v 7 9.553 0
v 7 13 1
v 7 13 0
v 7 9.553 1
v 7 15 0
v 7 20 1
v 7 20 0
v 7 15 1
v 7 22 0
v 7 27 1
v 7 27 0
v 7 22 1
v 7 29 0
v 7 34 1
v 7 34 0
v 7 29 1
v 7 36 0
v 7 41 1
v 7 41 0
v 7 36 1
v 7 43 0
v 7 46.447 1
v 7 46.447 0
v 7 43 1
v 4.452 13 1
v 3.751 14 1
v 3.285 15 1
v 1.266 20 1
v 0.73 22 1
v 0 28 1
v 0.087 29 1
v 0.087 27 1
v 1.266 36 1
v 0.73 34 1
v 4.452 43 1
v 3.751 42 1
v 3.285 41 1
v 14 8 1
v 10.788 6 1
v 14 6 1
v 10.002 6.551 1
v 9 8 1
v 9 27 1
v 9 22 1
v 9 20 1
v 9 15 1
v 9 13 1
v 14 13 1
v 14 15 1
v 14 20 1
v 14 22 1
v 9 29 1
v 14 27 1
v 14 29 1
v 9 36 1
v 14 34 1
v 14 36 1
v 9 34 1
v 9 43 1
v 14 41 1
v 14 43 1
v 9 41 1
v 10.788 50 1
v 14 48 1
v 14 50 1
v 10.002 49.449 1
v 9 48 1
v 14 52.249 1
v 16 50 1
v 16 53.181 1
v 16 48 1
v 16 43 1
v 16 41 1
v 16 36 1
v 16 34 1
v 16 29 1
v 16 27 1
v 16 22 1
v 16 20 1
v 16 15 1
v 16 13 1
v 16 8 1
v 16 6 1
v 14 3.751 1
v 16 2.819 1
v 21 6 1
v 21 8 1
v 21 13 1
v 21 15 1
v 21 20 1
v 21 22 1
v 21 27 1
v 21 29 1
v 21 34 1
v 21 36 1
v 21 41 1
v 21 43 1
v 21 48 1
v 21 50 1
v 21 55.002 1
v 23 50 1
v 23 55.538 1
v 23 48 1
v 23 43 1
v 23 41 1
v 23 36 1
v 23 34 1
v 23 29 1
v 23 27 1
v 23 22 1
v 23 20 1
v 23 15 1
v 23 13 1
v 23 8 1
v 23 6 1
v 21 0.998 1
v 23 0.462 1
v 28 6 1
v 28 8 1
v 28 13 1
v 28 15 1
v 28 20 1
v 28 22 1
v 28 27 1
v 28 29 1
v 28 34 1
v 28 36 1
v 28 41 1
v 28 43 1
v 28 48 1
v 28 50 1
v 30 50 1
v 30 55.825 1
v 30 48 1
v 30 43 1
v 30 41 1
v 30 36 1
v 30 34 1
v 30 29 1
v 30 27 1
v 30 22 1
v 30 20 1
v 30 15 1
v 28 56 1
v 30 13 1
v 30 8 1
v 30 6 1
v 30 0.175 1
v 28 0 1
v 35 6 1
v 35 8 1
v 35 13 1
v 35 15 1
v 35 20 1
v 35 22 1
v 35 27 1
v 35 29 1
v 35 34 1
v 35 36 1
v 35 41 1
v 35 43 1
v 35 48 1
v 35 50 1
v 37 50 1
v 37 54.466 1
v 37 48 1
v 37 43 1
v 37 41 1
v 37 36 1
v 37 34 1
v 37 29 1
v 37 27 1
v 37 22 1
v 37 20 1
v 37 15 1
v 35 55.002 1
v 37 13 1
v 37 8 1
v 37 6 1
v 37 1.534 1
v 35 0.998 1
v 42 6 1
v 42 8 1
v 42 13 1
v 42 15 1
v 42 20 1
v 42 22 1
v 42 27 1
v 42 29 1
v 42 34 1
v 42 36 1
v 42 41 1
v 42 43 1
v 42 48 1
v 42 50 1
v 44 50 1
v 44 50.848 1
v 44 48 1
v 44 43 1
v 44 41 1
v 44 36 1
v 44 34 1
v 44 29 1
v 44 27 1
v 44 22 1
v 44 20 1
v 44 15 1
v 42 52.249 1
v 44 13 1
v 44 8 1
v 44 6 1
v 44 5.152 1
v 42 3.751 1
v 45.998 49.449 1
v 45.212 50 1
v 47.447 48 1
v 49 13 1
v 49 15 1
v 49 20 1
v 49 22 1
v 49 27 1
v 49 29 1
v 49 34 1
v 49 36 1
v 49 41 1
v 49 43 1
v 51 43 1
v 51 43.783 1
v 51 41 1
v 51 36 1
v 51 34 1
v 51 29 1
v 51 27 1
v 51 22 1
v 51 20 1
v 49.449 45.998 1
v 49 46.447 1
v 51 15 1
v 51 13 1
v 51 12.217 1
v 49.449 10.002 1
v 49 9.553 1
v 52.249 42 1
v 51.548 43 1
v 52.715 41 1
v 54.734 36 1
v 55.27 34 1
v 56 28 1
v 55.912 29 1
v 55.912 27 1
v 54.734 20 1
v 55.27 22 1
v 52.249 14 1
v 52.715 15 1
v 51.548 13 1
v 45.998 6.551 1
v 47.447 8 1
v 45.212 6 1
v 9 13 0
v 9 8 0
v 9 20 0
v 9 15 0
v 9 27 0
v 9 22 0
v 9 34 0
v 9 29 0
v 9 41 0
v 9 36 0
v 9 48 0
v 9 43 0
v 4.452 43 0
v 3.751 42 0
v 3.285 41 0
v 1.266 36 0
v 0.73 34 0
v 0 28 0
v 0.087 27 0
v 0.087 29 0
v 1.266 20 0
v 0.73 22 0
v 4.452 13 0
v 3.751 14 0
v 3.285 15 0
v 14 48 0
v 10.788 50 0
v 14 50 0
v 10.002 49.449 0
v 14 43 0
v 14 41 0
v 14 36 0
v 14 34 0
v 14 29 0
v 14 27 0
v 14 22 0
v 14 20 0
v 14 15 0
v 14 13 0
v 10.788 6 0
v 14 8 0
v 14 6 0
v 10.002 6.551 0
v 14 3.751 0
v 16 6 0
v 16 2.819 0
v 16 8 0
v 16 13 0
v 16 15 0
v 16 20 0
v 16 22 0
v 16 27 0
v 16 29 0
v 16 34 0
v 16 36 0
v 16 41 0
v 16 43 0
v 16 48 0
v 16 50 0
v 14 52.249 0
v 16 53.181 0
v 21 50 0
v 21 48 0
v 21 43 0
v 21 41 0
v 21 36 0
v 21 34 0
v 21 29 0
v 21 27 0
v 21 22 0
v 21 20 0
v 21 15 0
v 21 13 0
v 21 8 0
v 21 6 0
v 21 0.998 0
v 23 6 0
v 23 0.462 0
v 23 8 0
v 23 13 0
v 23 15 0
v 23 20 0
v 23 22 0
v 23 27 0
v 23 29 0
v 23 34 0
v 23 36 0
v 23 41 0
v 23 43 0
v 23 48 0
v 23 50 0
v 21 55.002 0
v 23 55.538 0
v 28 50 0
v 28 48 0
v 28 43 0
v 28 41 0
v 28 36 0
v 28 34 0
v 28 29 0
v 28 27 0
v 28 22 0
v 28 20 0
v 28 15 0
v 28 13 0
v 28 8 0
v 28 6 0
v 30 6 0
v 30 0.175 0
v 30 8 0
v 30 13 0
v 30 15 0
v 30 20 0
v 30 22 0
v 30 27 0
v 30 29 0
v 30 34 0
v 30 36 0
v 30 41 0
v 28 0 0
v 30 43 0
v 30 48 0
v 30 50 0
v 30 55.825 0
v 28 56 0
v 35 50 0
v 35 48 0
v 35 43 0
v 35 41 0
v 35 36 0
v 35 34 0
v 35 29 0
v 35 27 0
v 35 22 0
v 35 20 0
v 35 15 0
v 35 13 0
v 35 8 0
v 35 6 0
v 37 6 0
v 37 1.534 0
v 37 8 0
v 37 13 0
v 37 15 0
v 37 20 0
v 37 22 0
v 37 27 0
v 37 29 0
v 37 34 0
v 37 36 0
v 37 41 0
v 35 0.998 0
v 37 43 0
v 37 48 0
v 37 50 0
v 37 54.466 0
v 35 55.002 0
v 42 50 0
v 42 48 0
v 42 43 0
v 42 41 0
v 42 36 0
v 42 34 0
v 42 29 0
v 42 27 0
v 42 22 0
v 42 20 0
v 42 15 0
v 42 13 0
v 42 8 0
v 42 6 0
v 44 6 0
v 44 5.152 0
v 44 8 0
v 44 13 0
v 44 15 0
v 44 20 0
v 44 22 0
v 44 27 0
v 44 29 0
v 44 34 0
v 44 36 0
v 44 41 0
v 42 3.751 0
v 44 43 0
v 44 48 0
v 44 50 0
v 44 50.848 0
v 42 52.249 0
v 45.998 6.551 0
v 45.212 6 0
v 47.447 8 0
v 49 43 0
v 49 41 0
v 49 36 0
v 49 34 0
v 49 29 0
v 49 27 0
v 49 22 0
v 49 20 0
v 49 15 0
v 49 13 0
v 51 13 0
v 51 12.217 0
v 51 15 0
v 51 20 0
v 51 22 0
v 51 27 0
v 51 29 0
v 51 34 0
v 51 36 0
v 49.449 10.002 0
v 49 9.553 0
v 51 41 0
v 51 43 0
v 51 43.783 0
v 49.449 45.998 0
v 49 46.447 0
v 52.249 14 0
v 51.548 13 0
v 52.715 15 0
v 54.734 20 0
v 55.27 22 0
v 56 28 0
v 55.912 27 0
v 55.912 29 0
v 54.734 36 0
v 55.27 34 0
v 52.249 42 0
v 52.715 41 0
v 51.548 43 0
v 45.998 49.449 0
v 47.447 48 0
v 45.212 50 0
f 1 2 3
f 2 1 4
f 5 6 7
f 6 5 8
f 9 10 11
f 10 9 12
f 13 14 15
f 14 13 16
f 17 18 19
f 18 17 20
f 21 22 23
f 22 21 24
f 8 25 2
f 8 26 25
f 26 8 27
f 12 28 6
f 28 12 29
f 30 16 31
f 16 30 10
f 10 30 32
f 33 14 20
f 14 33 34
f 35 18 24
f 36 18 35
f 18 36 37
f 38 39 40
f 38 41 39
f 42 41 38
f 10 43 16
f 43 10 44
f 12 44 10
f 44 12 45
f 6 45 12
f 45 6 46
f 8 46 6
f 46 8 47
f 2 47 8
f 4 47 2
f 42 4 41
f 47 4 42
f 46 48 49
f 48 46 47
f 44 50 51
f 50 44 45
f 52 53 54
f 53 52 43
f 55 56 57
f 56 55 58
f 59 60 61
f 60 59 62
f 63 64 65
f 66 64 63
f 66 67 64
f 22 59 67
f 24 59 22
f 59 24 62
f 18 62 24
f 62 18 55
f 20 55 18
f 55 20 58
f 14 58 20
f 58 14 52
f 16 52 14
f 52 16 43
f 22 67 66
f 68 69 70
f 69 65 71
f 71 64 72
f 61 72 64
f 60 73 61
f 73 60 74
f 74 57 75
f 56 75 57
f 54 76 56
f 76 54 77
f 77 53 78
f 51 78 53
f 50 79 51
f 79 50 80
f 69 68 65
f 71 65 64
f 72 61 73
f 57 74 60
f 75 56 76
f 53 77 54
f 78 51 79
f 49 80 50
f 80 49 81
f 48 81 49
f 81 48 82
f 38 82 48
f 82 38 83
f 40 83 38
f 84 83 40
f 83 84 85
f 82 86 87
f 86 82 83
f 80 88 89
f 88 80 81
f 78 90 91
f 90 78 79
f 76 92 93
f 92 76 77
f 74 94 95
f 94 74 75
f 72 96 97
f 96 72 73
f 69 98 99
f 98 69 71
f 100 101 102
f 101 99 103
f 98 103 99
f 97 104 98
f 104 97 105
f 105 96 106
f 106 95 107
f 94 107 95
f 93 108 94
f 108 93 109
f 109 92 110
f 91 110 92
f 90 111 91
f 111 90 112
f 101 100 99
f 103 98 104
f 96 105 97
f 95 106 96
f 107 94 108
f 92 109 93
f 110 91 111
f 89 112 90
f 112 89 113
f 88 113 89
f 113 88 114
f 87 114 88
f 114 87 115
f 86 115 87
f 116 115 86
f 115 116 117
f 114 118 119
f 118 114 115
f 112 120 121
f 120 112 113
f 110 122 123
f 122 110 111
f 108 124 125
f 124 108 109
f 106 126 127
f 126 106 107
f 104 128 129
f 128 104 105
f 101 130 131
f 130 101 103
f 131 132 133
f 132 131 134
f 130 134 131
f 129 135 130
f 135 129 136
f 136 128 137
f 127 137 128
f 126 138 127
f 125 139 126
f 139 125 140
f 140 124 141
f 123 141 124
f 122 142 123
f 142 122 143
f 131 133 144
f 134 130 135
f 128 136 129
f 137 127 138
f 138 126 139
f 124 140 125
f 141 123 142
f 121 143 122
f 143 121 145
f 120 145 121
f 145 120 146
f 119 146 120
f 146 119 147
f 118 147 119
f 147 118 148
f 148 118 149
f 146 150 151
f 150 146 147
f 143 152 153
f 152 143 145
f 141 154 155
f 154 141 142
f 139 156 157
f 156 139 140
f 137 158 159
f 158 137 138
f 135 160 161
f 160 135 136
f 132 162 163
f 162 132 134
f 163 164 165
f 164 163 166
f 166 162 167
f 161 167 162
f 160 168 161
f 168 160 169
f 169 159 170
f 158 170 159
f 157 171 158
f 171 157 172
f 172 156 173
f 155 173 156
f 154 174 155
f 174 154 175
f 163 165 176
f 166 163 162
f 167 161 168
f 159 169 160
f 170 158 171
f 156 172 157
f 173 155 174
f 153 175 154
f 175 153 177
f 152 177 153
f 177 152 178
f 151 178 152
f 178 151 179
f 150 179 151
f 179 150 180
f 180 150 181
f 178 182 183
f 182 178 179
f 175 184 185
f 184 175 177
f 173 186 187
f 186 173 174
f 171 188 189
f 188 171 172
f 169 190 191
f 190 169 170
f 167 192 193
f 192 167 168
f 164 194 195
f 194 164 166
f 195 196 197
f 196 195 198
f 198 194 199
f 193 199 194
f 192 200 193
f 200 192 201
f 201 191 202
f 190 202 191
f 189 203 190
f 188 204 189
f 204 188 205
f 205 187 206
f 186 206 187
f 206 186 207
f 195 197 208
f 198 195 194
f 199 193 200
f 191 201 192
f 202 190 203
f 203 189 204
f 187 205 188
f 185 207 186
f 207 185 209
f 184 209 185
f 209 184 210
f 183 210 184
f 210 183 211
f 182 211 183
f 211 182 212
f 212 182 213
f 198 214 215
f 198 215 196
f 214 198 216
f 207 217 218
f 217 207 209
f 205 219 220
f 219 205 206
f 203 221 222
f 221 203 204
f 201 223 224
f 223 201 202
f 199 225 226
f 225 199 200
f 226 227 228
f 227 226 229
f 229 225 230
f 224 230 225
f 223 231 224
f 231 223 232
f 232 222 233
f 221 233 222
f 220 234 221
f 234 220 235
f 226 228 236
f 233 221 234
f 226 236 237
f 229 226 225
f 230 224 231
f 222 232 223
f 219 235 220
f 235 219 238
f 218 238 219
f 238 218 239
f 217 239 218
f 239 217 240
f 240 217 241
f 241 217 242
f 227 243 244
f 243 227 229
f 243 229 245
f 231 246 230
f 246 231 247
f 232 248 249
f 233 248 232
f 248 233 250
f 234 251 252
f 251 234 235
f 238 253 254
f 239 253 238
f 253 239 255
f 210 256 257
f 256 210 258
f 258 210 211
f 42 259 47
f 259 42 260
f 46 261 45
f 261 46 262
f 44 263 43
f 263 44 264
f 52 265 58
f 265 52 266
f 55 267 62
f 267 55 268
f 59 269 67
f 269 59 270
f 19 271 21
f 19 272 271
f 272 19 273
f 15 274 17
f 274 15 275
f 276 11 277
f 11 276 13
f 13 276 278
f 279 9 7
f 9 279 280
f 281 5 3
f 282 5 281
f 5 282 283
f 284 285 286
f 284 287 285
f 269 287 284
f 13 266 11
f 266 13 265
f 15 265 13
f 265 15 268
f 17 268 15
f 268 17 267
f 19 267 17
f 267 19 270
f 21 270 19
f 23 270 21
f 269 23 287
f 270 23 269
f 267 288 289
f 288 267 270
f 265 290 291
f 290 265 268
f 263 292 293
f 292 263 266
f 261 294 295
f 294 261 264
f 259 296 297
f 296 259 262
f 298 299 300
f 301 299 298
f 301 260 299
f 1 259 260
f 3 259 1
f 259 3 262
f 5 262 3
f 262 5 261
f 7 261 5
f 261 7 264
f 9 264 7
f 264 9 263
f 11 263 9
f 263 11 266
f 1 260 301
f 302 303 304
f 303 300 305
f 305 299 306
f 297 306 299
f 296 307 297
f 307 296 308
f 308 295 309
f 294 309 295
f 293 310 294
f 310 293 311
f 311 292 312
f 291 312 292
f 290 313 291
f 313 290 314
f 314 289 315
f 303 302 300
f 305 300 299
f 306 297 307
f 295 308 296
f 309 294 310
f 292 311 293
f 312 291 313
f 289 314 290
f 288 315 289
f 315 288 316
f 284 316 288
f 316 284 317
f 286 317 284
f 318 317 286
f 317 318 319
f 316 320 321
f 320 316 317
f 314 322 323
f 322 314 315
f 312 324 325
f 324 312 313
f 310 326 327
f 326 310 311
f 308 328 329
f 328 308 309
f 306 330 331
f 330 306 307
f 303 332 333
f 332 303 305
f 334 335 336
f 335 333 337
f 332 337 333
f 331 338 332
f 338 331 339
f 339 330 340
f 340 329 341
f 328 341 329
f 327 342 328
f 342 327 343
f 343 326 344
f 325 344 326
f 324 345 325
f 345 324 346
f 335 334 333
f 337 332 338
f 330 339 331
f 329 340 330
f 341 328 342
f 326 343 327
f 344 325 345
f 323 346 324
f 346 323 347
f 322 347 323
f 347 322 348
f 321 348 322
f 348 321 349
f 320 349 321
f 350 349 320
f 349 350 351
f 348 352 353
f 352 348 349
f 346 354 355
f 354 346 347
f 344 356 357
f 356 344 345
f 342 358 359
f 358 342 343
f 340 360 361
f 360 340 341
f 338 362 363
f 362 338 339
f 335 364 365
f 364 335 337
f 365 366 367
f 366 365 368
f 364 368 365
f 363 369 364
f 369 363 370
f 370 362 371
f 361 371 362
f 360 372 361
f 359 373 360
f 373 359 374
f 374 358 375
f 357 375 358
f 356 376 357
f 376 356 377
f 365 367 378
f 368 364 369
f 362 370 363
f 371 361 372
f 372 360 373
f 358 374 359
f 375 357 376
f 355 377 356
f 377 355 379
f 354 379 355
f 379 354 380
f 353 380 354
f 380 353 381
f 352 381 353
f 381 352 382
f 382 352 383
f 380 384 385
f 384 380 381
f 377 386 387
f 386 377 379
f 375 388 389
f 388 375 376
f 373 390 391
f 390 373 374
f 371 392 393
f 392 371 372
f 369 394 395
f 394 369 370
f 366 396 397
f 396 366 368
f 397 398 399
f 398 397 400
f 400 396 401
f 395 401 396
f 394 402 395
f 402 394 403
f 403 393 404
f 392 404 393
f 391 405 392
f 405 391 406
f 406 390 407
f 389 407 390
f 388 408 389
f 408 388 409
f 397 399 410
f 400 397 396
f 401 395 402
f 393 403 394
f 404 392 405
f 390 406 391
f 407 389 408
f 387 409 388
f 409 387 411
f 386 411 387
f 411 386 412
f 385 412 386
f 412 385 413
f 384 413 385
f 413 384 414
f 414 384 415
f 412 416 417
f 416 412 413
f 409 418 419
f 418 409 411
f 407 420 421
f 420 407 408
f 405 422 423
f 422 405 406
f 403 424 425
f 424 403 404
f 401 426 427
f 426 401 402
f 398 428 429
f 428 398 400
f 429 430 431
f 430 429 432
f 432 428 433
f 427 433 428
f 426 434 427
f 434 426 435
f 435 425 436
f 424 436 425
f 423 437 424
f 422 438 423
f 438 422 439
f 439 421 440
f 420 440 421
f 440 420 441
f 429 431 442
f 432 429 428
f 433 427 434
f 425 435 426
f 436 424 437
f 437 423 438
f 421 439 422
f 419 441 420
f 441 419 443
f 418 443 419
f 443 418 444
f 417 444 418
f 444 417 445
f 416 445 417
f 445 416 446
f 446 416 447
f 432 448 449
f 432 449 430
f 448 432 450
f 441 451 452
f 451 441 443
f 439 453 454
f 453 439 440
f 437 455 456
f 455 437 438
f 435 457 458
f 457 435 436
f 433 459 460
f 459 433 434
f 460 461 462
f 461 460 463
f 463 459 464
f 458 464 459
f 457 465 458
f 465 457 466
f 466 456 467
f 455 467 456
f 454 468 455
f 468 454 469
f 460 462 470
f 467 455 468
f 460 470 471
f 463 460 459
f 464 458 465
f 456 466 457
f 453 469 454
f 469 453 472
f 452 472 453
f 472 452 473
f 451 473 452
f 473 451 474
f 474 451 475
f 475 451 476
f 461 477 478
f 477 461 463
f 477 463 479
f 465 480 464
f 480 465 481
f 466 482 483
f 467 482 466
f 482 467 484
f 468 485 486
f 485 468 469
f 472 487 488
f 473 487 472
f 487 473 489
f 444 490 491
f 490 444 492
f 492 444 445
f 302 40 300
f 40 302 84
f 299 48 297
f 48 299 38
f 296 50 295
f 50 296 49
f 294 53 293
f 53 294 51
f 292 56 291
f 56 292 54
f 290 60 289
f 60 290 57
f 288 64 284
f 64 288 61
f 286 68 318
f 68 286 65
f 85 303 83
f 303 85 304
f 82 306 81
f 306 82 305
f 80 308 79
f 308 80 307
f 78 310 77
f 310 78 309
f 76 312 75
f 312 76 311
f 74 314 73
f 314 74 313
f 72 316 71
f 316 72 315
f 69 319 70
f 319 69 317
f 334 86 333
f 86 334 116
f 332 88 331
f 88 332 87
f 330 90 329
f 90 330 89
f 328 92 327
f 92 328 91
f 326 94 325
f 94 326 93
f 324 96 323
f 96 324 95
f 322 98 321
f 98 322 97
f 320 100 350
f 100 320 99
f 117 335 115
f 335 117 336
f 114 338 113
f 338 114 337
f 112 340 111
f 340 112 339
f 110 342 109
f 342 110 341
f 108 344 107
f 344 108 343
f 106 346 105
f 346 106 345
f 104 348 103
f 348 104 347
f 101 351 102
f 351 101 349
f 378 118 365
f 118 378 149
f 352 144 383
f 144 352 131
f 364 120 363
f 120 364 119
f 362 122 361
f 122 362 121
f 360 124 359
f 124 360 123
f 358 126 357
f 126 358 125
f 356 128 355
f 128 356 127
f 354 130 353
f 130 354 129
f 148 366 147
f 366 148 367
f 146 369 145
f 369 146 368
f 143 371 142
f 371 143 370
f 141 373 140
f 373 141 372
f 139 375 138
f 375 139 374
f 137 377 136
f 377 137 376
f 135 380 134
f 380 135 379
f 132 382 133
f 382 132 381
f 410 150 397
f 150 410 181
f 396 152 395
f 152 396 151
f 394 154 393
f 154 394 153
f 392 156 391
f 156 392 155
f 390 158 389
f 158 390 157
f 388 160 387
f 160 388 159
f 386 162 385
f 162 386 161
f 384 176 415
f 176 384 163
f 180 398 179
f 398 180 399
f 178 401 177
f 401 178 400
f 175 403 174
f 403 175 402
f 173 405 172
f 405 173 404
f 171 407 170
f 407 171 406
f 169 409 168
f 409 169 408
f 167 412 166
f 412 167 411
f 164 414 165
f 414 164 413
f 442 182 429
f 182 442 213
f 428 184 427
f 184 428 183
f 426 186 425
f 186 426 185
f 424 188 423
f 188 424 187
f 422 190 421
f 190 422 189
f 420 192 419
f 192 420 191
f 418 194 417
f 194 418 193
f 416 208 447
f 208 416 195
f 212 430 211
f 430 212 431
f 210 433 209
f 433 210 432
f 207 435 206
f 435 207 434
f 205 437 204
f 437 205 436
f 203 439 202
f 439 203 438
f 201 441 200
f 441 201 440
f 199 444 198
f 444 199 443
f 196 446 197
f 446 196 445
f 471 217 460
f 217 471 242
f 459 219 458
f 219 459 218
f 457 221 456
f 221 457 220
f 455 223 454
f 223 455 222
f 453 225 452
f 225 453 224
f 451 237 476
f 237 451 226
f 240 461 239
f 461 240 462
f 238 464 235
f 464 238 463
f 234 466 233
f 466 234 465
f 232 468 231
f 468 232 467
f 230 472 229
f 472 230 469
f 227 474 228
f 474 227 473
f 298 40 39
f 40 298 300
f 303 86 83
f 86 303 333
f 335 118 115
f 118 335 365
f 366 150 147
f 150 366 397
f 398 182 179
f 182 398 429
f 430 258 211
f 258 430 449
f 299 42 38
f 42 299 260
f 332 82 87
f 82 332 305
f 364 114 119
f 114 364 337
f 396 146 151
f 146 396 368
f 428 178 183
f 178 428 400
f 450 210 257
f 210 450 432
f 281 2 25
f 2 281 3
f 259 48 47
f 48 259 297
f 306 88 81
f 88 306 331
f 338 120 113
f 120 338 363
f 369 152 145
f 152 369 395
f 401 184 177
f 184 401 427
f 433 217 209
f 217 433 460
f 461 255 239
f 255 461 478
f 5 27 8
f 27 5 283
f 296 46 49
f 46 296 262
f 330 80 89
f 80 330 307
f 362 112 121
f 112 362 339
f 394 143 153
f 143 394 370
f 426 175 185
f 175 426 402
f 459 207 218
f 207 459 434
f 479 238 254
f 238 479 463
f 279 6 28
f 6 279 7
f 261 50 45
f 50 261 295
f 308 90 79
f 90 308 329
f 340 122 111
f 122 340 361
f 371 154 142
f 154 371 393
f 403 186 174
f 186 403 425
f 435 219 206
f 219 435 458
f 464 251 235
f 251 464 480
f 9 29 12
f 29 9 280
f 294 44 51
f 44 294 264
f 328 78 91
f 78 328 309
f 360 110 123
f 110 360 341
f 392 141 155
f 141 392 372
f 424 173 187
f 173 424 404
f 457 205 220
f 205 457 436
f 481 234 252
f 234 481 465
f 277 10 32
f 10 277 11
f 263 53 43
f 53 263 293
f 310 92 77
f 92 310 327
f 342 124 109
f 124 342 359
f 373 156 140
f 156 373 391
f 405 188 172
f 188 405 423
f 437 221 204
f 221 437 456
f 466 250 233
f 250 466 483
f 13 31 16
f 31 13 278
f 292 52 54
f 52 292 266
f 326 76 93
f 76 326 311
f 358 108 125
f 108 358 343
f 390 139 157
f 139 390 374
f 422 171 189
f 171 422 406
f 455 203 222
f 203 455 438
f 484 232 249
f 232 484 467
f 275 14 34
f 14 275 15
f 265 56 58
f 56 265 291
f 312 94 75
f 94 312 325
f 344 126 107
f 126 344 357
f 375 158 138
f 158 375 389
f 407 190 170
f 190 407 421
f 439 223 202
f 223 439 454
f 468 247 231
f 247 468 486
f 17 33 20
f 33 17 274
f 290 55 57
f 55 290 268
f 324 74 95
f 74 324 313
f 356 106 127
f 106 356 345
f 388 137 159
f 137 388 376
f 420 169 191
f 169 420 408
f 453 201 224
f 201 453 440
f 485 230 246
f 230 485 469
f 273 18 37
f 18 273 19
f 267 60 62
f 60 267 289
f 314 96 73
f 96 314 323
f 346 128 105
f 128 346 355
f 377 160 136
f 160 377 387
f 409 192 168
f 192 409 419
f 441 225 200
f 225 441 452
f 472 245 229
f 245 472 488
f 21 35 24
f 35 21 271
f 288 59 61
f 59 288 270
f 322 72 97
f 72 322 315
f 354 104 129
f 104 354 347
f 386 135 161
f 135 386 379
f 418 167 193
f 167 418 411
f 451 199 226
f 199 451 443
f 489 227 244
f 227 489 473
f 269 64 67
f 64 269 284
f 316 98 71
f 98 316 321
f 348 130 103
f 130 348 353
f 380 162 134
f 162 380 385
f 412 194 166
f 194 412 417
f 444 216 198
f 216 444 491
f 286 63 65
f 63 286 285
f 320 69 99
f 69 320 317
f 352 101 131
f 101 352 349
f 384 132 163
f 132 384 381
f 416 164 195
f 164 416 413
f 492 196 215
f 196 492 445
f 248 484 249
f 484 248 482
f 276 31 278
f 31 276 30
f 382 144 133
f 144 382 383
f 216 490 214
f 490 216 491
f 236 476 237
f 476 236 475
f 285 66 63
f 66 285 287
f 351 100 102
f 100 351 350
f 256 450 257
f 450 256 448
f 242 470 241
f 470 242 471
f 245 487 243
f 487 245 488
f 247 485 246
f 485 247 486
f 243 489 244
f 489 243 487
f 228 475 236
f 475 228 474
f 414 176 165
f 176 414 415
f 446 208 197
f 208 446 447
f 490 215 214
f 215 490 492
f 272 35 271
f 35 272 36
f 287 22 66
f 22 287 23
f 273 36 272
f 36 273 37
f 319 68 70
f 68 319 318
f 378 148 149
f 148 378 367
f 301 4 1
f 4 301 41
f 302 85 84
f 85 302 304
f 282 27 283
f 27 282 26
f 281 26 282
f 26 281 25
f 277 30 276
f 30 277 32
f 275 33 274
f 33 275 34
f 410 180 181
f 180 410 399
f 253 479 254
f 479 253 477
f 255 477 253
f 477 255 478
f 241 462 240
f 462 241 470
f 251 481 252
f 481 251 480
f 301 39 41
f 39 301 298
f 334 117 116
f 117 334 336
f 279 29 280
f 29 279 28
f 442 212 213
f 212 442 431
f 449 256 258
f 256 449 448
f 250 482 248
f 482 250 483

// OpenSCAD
//General
$fn = 36;
tolerance = 0.5;
wall = 2;
h = 1;
r = 55/2 + tolerance;
spacing = wall+5;

difference(){
  grid();
  translate([r,r,-0.01])
  difference(){
    cylinder(r=100, h=h*2);
    cylinder(r=r, h=h*2);
  }
}

module grid(){
  line(r);
  translate([r*2,-wall/2,0])
  rotate([0,0,90])
  line(r);
}

module line(radius){
  for(i=[1:1:radius*2-1]) {
    if(i%spacing == 0) {
      translate([i,0,0])
      cube([wall, radius*2, h]);
    }
  }
}
